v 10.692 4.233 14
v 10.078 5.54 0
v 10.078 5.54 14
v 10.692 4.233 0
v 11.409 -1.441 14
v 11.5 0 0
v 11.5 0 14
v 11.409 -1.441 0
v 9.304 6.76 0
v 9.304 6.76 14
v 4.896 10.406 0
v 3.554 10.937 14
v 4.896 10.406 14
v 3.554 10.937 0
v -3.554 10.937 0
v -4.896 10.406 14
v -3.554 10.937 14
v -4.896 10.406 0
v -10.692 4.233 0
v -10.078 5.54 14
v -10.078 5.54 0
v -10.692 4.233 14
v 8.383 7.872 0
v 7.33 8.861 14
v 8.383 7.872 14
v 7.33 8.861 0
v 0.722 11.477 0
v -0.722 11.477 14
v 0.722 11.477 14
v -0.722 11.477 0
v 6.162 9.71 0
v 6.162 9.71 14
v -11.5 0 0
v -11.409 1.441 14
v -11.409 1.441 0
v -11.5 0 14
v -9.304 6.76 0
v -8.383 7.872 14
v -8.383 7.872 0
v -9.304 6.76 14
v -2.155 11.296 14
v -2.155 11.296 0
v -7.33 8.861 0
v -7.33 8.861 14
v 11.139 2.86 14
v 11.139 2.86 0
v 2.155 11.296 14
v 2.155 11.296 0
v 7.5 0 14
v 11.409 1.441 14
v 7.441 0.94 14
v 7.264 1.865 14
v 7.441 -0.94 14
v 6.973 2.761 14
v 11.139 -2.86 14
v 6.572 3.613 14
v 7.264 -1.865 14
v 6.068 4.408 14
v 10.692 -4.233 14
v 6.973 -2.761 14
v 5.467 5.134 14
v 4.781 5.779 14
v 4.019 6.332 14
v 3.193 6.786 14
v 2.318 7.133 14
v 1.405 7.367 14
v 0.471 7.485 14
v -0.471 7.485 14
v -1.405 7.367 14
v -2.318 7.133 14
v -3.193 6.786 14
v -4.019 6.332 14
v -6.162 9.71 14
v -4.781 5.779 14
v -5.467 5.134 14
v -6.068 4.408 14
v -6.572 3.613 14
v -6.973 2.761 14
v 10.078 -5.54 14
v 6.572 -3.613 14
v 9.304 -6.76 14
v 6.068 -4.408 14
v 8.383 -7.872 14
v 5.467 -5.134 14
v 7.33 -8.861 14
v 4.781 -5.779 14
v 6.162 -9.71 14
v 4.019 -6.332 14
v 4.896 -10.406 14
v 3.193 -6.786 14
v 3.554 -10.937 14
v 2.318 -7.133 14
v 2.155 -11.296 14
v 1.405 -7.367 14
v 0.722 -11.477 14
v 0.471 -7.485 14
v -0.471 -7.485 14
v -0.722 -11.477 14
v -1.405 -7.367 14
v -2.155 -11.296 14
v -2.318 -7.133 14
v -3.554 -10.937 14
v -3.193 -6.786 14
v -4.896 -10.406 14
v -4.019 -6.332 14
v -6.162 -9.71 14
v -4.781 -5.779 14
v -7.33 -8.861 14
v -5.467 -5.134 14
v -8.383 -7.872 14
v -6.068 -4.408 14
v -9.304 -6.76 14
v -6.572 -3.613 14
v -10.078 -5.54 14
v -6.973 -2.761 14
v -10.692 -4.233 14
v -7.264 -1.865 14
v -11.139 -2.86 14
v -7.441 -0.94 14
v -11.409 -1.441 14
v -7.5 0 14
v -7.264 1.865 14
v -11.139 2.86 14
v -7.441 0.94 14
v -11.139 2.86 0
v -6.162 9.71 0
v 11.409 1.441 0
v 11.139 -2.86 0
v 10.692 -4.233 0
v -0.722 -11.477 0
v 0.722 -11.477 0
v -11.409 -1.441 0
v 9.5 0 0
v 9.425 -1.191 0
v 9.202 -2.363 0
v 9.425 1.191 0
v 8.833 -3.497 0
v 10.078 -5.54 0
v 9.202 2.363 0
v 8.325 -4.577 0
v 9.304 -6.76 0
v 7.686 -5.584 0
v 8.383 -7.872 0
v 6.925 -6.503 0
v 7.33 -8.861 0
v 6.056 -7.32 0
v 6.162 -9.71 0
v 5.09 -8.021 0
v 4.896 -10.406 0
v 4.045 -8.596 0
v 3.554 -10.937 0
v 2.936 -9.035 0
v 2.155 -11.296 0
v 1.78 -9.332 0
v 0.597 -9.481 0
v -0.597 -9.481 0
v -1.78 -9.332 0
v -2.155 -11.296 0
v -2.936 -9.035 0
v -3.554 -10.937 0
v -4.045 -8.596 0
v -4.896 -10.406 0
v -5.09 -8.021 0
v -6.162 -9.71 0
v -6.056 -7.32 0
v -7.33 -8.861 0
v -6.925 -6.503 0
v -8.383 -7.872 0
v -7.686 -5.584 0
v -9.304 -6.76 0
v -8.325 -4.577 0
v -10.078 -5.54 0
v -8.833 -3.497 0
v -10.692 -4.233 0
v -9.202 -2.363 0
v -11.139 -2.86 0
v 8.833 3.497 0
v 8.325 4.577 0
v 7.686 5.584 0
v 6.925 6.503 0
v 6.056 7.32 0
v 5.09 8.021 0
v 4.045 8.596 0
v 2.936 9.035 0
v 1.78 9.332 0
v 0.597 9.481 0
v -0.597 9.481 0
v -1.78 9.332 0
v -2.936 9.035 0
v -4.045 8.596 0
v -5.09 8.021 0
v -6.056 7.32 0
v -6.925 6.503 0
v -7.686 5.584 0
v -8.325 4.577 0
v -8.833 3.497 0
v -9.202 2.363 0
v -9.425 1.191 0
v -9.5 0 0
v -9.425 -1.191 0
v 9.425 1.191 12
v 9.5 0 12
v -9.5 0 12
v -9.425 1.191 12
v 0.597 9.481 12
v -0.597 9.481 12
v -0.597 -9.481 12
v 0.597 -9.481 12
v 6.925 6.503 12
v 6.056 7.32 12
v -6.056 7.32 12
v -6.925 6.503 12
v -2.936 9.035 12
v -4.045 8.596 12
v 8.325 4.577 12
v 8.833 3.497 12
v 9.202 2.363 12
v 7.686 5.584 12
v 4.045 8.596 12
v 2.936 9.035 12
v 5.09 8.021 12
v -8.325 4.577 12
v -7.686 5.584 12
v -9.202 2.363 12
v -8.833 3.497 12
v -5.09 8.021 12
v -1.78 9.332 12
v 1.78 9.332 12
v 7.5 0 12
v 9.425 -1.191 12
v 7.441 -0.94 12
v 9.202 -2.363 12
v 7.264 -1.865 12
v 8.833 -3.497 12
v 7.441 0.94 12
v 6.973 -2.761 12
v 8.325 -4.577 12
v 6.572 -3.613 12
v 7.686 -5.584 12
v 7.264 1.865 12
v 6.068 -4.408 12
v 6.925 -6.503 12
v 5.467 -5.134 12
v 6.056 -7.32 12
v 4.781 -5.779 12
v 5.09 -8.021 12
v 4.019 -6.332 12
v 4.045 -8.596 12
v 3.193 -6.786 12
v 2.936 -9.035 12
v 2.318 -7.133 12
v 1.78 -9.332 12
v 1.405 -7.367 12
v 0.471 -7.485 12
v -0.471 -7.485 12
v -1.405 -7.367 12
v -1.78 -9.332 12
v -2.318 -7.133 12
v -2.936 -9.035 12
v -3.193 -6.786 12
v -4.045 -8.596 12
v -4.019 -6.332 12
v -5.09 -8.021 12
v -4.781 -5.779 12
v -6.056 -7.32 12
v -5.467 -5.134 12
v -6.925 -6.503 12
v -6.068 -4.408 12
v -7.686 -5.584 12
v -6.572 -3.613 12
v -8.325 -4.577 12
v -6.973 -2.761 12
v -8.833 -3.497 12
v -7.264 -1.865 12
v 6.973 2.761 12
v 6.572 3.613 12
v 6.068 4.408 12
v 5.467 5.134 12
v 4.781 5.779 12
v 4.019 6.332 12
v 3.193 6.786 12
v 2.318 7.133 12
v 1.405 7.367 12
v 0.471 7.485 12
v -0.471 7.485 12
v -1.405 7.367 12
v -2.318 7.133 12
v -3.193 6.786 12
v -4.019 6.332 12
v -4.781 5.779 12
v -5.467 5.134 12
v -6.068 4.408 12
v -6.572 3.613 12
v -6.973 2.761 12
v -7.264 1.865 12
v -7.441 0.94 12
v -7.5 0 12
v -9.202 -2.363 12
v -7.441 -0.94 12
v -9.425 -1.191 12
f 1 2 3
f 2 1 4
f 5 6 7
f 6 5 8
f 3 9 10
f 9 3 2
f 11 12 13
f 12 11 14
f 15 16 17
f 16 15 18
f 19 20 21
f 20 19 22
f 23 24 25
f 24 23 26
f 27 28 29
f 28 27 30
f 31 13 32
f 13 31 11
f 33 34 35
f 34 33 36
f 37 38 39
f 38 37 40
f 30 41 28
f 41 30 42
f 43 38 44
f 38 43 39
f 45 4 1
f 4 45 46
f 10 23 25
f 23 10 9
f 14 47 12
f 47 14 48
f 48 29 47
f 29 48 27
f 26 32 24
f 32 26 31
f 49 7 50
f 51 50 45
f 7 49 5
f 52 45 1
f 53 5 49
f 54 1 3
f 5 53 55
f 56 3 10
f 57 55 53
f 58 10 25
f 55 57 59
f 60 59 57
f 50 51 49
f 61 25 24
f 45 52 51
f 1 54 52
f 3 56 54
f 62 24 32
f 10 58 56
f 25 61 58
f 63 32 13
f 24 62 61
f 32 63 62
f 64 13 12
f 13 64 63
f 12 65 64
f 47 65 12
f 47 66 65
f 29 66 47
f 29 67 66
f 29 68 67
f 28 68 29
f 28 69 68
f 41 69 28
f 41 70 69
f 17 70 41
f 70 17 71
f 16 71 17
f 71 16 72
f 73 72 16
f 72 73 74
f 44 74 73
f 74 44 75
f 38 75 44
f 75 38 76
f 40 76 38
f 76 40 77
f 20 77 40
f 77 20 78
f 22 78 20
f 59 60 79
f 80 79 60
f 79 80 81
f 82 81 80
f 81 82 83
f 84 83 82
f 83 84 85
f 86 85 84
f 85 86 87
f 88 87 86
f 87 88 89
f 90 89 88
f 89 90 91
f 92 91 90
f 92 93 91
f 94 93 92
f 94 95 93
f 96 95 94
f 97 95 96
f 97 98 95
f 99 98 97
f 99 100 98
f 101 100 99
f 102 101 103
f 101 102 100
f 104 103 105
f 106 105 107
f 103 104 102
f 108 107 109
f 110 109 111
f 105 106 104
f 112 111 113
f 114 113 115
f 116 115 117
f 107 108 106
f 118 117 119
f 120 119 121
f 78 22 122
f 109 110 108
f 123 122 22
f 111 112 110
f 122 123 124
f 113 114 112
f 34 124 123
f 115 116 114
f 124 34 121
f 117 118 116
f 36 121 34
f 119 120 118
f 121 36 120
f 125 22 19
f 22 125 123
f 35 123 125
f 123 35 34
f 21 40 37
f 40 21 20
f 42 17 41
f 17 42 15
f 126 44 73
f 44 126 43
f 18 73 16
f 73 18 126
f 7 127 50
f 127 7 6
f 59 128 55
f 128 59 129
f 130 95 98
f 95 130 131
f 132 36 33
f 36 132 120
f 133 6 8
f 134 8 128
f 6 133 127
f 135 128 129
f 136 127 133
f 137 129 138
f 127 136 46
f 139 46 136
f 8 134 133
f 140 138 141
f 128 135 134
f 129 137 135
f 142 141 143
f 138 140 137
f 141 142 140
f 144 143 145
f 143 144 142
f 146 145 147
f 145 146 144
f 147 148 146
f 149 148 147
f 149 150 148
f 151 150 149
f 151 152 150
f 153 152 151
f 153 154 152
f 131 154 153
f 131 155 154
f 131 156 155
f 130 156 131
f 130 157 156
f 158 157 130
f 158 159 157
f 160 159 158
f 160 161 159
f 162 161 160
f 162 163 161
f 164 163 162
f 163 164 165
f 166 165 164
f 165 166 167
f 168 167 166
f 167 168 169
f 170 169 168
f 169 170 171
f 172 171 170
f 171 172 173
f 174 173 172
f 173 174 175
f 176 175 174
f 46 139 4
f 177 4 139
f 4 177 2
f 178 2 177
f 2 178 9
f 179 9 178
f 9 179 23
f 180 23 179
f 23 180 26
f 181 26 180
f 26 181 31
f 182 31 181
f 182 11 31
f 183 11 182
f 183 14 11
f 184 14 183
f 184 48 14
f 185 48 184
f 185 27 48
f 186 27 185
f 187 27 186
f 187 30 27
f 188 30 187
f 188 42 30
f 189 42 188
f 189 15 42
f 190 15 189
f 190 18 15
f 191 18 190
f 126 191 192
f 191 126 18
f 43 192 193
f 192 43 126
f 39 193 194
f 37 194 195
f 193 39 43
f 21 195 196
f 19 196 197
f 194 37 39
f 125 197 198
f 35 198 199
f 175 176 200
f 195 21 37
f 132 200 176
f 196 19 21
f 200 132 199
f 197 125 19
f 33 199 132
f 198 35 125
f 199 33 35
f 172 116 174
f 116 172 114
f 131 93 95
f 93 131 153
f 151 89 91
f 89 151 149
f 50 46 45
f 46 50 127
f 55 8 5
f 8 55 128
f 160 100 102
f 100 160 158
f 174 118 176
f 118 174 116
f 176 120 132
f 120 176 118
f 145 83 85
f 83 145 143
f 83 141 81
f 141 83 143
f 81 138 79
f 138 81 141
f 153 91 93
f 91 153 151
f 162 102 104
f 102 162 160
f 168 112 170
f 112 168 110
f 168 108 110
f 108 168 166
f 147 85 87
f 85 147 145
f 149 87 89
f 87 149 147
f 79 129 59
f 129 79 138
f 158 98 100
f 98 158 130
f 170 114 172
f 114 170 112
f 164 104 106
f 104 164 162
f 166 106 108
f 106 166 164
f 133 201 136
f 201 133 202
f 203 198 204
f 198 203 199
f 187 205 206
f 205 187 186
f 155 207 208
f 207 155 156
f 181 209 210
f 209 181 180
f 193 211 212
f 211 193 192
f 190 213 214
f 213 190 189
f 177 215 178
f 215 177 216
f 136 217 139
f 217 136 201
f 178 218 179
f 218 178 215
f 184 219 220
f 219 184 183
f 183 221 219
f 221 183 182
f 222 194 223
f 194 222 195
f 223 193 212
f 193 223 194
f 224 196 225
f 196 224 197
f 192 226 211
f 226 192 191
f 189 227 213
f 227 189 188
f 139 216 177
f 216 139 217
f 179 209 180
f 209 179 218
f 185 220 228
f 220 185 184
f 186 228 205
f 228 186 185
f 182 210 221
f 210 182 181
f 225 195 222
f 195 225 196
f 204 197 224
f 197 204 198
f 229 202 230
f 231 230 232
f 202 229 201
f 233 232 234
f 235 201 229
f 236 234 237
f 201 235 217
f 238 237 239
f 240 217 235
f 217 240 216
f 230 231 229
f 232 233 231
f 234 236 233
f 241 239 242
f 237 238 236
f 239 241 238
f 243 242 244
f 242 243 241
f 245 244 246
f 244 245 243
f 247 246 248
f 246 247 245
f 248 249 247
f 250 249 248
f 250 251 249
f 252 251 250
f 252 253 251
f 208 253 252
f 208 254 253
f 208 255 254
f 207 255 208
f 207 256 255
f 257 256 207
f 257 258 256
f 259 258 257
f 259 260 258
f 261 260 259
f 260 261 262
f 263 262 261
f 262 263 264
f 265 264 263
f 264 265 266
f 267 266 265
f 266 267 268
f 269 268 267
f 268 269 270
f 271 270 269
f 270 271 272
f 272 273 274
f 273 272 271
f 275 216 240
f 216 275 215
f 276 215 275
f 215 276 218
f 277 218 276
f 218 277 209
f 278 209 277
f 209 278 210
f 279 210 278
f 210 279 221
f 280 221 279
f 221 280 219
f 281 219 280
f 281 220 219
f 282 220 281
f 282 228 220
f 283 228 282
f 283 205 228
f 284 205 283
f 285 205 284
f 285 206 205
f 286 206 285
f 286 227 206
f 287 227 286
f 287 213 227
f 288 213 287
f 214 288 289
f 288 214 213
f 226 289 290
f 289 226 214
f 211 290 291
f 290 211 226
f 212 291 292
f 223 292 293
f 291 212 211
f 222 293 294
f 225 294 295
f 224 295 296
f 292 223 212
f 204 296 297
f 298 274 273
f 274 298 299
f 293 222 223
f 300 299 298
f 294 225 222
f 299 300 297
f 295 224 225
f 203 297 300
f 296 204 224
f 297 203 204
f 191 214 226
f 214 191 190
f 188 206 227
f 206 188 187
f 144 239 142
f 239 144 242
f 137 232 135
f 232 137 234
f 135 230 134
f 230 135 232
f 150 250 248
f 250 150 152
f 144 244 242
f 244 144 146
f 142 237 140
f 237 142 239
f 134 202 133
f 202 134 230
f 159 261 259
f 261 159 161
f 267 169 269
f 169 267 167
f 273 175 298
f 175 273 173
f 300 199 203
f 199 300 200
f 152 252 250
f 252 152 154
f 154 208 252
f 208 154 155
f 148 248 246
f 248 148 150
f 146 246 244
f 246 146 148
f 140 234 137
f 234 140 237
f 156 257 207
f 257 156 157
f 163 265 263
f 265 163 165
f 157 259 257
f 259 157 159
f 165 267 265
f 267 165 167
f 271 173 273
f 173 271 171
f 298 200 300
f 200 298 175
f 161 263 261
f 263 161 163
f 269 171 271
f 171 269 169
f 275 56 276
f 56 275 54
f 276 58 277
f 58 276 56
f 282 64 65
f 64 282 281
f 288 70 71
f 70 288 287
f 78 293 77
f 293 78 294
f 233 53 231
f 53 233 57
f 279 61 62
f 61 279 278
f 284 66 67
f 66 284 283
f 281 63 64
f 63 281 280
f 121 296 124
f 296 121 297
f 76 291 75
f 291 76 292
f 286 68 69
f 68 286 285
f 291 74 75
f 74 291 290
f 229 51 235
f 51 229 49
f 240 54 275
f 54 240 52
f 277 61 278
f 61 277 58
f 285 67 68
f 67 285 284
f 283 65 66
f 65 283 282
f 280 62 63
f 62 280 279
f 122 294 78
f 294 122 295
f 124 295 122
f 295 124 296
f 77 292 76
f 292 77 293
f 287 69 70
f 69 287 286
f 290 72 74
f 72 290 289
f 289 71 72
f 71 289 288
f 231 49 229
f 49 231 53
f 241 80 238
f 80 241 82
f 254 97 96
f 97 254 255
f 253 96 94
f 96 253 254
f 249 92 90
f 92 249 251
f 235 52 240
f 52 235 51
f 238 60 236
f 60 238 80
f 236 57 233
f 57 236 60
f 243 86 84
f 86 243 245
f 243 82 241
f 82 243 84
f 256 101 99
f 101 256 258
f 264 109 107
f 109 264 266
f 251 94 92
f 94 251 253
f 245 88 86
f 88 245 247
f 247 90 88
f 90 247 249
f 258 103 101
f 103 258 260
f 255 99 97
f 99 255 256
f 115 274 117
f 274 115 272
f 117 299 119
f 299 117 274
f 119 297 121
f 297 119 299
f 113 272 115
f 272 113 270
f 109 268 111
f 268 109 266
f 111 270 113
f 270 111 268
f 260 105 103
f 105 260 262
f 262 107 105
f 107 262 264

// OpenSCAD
$fn=50;
difference(){
    cylinder(14,23/2,23/2);
    cylinder(12,19/2,19/2);
    cylinder(14,15/2,15/2);
}
